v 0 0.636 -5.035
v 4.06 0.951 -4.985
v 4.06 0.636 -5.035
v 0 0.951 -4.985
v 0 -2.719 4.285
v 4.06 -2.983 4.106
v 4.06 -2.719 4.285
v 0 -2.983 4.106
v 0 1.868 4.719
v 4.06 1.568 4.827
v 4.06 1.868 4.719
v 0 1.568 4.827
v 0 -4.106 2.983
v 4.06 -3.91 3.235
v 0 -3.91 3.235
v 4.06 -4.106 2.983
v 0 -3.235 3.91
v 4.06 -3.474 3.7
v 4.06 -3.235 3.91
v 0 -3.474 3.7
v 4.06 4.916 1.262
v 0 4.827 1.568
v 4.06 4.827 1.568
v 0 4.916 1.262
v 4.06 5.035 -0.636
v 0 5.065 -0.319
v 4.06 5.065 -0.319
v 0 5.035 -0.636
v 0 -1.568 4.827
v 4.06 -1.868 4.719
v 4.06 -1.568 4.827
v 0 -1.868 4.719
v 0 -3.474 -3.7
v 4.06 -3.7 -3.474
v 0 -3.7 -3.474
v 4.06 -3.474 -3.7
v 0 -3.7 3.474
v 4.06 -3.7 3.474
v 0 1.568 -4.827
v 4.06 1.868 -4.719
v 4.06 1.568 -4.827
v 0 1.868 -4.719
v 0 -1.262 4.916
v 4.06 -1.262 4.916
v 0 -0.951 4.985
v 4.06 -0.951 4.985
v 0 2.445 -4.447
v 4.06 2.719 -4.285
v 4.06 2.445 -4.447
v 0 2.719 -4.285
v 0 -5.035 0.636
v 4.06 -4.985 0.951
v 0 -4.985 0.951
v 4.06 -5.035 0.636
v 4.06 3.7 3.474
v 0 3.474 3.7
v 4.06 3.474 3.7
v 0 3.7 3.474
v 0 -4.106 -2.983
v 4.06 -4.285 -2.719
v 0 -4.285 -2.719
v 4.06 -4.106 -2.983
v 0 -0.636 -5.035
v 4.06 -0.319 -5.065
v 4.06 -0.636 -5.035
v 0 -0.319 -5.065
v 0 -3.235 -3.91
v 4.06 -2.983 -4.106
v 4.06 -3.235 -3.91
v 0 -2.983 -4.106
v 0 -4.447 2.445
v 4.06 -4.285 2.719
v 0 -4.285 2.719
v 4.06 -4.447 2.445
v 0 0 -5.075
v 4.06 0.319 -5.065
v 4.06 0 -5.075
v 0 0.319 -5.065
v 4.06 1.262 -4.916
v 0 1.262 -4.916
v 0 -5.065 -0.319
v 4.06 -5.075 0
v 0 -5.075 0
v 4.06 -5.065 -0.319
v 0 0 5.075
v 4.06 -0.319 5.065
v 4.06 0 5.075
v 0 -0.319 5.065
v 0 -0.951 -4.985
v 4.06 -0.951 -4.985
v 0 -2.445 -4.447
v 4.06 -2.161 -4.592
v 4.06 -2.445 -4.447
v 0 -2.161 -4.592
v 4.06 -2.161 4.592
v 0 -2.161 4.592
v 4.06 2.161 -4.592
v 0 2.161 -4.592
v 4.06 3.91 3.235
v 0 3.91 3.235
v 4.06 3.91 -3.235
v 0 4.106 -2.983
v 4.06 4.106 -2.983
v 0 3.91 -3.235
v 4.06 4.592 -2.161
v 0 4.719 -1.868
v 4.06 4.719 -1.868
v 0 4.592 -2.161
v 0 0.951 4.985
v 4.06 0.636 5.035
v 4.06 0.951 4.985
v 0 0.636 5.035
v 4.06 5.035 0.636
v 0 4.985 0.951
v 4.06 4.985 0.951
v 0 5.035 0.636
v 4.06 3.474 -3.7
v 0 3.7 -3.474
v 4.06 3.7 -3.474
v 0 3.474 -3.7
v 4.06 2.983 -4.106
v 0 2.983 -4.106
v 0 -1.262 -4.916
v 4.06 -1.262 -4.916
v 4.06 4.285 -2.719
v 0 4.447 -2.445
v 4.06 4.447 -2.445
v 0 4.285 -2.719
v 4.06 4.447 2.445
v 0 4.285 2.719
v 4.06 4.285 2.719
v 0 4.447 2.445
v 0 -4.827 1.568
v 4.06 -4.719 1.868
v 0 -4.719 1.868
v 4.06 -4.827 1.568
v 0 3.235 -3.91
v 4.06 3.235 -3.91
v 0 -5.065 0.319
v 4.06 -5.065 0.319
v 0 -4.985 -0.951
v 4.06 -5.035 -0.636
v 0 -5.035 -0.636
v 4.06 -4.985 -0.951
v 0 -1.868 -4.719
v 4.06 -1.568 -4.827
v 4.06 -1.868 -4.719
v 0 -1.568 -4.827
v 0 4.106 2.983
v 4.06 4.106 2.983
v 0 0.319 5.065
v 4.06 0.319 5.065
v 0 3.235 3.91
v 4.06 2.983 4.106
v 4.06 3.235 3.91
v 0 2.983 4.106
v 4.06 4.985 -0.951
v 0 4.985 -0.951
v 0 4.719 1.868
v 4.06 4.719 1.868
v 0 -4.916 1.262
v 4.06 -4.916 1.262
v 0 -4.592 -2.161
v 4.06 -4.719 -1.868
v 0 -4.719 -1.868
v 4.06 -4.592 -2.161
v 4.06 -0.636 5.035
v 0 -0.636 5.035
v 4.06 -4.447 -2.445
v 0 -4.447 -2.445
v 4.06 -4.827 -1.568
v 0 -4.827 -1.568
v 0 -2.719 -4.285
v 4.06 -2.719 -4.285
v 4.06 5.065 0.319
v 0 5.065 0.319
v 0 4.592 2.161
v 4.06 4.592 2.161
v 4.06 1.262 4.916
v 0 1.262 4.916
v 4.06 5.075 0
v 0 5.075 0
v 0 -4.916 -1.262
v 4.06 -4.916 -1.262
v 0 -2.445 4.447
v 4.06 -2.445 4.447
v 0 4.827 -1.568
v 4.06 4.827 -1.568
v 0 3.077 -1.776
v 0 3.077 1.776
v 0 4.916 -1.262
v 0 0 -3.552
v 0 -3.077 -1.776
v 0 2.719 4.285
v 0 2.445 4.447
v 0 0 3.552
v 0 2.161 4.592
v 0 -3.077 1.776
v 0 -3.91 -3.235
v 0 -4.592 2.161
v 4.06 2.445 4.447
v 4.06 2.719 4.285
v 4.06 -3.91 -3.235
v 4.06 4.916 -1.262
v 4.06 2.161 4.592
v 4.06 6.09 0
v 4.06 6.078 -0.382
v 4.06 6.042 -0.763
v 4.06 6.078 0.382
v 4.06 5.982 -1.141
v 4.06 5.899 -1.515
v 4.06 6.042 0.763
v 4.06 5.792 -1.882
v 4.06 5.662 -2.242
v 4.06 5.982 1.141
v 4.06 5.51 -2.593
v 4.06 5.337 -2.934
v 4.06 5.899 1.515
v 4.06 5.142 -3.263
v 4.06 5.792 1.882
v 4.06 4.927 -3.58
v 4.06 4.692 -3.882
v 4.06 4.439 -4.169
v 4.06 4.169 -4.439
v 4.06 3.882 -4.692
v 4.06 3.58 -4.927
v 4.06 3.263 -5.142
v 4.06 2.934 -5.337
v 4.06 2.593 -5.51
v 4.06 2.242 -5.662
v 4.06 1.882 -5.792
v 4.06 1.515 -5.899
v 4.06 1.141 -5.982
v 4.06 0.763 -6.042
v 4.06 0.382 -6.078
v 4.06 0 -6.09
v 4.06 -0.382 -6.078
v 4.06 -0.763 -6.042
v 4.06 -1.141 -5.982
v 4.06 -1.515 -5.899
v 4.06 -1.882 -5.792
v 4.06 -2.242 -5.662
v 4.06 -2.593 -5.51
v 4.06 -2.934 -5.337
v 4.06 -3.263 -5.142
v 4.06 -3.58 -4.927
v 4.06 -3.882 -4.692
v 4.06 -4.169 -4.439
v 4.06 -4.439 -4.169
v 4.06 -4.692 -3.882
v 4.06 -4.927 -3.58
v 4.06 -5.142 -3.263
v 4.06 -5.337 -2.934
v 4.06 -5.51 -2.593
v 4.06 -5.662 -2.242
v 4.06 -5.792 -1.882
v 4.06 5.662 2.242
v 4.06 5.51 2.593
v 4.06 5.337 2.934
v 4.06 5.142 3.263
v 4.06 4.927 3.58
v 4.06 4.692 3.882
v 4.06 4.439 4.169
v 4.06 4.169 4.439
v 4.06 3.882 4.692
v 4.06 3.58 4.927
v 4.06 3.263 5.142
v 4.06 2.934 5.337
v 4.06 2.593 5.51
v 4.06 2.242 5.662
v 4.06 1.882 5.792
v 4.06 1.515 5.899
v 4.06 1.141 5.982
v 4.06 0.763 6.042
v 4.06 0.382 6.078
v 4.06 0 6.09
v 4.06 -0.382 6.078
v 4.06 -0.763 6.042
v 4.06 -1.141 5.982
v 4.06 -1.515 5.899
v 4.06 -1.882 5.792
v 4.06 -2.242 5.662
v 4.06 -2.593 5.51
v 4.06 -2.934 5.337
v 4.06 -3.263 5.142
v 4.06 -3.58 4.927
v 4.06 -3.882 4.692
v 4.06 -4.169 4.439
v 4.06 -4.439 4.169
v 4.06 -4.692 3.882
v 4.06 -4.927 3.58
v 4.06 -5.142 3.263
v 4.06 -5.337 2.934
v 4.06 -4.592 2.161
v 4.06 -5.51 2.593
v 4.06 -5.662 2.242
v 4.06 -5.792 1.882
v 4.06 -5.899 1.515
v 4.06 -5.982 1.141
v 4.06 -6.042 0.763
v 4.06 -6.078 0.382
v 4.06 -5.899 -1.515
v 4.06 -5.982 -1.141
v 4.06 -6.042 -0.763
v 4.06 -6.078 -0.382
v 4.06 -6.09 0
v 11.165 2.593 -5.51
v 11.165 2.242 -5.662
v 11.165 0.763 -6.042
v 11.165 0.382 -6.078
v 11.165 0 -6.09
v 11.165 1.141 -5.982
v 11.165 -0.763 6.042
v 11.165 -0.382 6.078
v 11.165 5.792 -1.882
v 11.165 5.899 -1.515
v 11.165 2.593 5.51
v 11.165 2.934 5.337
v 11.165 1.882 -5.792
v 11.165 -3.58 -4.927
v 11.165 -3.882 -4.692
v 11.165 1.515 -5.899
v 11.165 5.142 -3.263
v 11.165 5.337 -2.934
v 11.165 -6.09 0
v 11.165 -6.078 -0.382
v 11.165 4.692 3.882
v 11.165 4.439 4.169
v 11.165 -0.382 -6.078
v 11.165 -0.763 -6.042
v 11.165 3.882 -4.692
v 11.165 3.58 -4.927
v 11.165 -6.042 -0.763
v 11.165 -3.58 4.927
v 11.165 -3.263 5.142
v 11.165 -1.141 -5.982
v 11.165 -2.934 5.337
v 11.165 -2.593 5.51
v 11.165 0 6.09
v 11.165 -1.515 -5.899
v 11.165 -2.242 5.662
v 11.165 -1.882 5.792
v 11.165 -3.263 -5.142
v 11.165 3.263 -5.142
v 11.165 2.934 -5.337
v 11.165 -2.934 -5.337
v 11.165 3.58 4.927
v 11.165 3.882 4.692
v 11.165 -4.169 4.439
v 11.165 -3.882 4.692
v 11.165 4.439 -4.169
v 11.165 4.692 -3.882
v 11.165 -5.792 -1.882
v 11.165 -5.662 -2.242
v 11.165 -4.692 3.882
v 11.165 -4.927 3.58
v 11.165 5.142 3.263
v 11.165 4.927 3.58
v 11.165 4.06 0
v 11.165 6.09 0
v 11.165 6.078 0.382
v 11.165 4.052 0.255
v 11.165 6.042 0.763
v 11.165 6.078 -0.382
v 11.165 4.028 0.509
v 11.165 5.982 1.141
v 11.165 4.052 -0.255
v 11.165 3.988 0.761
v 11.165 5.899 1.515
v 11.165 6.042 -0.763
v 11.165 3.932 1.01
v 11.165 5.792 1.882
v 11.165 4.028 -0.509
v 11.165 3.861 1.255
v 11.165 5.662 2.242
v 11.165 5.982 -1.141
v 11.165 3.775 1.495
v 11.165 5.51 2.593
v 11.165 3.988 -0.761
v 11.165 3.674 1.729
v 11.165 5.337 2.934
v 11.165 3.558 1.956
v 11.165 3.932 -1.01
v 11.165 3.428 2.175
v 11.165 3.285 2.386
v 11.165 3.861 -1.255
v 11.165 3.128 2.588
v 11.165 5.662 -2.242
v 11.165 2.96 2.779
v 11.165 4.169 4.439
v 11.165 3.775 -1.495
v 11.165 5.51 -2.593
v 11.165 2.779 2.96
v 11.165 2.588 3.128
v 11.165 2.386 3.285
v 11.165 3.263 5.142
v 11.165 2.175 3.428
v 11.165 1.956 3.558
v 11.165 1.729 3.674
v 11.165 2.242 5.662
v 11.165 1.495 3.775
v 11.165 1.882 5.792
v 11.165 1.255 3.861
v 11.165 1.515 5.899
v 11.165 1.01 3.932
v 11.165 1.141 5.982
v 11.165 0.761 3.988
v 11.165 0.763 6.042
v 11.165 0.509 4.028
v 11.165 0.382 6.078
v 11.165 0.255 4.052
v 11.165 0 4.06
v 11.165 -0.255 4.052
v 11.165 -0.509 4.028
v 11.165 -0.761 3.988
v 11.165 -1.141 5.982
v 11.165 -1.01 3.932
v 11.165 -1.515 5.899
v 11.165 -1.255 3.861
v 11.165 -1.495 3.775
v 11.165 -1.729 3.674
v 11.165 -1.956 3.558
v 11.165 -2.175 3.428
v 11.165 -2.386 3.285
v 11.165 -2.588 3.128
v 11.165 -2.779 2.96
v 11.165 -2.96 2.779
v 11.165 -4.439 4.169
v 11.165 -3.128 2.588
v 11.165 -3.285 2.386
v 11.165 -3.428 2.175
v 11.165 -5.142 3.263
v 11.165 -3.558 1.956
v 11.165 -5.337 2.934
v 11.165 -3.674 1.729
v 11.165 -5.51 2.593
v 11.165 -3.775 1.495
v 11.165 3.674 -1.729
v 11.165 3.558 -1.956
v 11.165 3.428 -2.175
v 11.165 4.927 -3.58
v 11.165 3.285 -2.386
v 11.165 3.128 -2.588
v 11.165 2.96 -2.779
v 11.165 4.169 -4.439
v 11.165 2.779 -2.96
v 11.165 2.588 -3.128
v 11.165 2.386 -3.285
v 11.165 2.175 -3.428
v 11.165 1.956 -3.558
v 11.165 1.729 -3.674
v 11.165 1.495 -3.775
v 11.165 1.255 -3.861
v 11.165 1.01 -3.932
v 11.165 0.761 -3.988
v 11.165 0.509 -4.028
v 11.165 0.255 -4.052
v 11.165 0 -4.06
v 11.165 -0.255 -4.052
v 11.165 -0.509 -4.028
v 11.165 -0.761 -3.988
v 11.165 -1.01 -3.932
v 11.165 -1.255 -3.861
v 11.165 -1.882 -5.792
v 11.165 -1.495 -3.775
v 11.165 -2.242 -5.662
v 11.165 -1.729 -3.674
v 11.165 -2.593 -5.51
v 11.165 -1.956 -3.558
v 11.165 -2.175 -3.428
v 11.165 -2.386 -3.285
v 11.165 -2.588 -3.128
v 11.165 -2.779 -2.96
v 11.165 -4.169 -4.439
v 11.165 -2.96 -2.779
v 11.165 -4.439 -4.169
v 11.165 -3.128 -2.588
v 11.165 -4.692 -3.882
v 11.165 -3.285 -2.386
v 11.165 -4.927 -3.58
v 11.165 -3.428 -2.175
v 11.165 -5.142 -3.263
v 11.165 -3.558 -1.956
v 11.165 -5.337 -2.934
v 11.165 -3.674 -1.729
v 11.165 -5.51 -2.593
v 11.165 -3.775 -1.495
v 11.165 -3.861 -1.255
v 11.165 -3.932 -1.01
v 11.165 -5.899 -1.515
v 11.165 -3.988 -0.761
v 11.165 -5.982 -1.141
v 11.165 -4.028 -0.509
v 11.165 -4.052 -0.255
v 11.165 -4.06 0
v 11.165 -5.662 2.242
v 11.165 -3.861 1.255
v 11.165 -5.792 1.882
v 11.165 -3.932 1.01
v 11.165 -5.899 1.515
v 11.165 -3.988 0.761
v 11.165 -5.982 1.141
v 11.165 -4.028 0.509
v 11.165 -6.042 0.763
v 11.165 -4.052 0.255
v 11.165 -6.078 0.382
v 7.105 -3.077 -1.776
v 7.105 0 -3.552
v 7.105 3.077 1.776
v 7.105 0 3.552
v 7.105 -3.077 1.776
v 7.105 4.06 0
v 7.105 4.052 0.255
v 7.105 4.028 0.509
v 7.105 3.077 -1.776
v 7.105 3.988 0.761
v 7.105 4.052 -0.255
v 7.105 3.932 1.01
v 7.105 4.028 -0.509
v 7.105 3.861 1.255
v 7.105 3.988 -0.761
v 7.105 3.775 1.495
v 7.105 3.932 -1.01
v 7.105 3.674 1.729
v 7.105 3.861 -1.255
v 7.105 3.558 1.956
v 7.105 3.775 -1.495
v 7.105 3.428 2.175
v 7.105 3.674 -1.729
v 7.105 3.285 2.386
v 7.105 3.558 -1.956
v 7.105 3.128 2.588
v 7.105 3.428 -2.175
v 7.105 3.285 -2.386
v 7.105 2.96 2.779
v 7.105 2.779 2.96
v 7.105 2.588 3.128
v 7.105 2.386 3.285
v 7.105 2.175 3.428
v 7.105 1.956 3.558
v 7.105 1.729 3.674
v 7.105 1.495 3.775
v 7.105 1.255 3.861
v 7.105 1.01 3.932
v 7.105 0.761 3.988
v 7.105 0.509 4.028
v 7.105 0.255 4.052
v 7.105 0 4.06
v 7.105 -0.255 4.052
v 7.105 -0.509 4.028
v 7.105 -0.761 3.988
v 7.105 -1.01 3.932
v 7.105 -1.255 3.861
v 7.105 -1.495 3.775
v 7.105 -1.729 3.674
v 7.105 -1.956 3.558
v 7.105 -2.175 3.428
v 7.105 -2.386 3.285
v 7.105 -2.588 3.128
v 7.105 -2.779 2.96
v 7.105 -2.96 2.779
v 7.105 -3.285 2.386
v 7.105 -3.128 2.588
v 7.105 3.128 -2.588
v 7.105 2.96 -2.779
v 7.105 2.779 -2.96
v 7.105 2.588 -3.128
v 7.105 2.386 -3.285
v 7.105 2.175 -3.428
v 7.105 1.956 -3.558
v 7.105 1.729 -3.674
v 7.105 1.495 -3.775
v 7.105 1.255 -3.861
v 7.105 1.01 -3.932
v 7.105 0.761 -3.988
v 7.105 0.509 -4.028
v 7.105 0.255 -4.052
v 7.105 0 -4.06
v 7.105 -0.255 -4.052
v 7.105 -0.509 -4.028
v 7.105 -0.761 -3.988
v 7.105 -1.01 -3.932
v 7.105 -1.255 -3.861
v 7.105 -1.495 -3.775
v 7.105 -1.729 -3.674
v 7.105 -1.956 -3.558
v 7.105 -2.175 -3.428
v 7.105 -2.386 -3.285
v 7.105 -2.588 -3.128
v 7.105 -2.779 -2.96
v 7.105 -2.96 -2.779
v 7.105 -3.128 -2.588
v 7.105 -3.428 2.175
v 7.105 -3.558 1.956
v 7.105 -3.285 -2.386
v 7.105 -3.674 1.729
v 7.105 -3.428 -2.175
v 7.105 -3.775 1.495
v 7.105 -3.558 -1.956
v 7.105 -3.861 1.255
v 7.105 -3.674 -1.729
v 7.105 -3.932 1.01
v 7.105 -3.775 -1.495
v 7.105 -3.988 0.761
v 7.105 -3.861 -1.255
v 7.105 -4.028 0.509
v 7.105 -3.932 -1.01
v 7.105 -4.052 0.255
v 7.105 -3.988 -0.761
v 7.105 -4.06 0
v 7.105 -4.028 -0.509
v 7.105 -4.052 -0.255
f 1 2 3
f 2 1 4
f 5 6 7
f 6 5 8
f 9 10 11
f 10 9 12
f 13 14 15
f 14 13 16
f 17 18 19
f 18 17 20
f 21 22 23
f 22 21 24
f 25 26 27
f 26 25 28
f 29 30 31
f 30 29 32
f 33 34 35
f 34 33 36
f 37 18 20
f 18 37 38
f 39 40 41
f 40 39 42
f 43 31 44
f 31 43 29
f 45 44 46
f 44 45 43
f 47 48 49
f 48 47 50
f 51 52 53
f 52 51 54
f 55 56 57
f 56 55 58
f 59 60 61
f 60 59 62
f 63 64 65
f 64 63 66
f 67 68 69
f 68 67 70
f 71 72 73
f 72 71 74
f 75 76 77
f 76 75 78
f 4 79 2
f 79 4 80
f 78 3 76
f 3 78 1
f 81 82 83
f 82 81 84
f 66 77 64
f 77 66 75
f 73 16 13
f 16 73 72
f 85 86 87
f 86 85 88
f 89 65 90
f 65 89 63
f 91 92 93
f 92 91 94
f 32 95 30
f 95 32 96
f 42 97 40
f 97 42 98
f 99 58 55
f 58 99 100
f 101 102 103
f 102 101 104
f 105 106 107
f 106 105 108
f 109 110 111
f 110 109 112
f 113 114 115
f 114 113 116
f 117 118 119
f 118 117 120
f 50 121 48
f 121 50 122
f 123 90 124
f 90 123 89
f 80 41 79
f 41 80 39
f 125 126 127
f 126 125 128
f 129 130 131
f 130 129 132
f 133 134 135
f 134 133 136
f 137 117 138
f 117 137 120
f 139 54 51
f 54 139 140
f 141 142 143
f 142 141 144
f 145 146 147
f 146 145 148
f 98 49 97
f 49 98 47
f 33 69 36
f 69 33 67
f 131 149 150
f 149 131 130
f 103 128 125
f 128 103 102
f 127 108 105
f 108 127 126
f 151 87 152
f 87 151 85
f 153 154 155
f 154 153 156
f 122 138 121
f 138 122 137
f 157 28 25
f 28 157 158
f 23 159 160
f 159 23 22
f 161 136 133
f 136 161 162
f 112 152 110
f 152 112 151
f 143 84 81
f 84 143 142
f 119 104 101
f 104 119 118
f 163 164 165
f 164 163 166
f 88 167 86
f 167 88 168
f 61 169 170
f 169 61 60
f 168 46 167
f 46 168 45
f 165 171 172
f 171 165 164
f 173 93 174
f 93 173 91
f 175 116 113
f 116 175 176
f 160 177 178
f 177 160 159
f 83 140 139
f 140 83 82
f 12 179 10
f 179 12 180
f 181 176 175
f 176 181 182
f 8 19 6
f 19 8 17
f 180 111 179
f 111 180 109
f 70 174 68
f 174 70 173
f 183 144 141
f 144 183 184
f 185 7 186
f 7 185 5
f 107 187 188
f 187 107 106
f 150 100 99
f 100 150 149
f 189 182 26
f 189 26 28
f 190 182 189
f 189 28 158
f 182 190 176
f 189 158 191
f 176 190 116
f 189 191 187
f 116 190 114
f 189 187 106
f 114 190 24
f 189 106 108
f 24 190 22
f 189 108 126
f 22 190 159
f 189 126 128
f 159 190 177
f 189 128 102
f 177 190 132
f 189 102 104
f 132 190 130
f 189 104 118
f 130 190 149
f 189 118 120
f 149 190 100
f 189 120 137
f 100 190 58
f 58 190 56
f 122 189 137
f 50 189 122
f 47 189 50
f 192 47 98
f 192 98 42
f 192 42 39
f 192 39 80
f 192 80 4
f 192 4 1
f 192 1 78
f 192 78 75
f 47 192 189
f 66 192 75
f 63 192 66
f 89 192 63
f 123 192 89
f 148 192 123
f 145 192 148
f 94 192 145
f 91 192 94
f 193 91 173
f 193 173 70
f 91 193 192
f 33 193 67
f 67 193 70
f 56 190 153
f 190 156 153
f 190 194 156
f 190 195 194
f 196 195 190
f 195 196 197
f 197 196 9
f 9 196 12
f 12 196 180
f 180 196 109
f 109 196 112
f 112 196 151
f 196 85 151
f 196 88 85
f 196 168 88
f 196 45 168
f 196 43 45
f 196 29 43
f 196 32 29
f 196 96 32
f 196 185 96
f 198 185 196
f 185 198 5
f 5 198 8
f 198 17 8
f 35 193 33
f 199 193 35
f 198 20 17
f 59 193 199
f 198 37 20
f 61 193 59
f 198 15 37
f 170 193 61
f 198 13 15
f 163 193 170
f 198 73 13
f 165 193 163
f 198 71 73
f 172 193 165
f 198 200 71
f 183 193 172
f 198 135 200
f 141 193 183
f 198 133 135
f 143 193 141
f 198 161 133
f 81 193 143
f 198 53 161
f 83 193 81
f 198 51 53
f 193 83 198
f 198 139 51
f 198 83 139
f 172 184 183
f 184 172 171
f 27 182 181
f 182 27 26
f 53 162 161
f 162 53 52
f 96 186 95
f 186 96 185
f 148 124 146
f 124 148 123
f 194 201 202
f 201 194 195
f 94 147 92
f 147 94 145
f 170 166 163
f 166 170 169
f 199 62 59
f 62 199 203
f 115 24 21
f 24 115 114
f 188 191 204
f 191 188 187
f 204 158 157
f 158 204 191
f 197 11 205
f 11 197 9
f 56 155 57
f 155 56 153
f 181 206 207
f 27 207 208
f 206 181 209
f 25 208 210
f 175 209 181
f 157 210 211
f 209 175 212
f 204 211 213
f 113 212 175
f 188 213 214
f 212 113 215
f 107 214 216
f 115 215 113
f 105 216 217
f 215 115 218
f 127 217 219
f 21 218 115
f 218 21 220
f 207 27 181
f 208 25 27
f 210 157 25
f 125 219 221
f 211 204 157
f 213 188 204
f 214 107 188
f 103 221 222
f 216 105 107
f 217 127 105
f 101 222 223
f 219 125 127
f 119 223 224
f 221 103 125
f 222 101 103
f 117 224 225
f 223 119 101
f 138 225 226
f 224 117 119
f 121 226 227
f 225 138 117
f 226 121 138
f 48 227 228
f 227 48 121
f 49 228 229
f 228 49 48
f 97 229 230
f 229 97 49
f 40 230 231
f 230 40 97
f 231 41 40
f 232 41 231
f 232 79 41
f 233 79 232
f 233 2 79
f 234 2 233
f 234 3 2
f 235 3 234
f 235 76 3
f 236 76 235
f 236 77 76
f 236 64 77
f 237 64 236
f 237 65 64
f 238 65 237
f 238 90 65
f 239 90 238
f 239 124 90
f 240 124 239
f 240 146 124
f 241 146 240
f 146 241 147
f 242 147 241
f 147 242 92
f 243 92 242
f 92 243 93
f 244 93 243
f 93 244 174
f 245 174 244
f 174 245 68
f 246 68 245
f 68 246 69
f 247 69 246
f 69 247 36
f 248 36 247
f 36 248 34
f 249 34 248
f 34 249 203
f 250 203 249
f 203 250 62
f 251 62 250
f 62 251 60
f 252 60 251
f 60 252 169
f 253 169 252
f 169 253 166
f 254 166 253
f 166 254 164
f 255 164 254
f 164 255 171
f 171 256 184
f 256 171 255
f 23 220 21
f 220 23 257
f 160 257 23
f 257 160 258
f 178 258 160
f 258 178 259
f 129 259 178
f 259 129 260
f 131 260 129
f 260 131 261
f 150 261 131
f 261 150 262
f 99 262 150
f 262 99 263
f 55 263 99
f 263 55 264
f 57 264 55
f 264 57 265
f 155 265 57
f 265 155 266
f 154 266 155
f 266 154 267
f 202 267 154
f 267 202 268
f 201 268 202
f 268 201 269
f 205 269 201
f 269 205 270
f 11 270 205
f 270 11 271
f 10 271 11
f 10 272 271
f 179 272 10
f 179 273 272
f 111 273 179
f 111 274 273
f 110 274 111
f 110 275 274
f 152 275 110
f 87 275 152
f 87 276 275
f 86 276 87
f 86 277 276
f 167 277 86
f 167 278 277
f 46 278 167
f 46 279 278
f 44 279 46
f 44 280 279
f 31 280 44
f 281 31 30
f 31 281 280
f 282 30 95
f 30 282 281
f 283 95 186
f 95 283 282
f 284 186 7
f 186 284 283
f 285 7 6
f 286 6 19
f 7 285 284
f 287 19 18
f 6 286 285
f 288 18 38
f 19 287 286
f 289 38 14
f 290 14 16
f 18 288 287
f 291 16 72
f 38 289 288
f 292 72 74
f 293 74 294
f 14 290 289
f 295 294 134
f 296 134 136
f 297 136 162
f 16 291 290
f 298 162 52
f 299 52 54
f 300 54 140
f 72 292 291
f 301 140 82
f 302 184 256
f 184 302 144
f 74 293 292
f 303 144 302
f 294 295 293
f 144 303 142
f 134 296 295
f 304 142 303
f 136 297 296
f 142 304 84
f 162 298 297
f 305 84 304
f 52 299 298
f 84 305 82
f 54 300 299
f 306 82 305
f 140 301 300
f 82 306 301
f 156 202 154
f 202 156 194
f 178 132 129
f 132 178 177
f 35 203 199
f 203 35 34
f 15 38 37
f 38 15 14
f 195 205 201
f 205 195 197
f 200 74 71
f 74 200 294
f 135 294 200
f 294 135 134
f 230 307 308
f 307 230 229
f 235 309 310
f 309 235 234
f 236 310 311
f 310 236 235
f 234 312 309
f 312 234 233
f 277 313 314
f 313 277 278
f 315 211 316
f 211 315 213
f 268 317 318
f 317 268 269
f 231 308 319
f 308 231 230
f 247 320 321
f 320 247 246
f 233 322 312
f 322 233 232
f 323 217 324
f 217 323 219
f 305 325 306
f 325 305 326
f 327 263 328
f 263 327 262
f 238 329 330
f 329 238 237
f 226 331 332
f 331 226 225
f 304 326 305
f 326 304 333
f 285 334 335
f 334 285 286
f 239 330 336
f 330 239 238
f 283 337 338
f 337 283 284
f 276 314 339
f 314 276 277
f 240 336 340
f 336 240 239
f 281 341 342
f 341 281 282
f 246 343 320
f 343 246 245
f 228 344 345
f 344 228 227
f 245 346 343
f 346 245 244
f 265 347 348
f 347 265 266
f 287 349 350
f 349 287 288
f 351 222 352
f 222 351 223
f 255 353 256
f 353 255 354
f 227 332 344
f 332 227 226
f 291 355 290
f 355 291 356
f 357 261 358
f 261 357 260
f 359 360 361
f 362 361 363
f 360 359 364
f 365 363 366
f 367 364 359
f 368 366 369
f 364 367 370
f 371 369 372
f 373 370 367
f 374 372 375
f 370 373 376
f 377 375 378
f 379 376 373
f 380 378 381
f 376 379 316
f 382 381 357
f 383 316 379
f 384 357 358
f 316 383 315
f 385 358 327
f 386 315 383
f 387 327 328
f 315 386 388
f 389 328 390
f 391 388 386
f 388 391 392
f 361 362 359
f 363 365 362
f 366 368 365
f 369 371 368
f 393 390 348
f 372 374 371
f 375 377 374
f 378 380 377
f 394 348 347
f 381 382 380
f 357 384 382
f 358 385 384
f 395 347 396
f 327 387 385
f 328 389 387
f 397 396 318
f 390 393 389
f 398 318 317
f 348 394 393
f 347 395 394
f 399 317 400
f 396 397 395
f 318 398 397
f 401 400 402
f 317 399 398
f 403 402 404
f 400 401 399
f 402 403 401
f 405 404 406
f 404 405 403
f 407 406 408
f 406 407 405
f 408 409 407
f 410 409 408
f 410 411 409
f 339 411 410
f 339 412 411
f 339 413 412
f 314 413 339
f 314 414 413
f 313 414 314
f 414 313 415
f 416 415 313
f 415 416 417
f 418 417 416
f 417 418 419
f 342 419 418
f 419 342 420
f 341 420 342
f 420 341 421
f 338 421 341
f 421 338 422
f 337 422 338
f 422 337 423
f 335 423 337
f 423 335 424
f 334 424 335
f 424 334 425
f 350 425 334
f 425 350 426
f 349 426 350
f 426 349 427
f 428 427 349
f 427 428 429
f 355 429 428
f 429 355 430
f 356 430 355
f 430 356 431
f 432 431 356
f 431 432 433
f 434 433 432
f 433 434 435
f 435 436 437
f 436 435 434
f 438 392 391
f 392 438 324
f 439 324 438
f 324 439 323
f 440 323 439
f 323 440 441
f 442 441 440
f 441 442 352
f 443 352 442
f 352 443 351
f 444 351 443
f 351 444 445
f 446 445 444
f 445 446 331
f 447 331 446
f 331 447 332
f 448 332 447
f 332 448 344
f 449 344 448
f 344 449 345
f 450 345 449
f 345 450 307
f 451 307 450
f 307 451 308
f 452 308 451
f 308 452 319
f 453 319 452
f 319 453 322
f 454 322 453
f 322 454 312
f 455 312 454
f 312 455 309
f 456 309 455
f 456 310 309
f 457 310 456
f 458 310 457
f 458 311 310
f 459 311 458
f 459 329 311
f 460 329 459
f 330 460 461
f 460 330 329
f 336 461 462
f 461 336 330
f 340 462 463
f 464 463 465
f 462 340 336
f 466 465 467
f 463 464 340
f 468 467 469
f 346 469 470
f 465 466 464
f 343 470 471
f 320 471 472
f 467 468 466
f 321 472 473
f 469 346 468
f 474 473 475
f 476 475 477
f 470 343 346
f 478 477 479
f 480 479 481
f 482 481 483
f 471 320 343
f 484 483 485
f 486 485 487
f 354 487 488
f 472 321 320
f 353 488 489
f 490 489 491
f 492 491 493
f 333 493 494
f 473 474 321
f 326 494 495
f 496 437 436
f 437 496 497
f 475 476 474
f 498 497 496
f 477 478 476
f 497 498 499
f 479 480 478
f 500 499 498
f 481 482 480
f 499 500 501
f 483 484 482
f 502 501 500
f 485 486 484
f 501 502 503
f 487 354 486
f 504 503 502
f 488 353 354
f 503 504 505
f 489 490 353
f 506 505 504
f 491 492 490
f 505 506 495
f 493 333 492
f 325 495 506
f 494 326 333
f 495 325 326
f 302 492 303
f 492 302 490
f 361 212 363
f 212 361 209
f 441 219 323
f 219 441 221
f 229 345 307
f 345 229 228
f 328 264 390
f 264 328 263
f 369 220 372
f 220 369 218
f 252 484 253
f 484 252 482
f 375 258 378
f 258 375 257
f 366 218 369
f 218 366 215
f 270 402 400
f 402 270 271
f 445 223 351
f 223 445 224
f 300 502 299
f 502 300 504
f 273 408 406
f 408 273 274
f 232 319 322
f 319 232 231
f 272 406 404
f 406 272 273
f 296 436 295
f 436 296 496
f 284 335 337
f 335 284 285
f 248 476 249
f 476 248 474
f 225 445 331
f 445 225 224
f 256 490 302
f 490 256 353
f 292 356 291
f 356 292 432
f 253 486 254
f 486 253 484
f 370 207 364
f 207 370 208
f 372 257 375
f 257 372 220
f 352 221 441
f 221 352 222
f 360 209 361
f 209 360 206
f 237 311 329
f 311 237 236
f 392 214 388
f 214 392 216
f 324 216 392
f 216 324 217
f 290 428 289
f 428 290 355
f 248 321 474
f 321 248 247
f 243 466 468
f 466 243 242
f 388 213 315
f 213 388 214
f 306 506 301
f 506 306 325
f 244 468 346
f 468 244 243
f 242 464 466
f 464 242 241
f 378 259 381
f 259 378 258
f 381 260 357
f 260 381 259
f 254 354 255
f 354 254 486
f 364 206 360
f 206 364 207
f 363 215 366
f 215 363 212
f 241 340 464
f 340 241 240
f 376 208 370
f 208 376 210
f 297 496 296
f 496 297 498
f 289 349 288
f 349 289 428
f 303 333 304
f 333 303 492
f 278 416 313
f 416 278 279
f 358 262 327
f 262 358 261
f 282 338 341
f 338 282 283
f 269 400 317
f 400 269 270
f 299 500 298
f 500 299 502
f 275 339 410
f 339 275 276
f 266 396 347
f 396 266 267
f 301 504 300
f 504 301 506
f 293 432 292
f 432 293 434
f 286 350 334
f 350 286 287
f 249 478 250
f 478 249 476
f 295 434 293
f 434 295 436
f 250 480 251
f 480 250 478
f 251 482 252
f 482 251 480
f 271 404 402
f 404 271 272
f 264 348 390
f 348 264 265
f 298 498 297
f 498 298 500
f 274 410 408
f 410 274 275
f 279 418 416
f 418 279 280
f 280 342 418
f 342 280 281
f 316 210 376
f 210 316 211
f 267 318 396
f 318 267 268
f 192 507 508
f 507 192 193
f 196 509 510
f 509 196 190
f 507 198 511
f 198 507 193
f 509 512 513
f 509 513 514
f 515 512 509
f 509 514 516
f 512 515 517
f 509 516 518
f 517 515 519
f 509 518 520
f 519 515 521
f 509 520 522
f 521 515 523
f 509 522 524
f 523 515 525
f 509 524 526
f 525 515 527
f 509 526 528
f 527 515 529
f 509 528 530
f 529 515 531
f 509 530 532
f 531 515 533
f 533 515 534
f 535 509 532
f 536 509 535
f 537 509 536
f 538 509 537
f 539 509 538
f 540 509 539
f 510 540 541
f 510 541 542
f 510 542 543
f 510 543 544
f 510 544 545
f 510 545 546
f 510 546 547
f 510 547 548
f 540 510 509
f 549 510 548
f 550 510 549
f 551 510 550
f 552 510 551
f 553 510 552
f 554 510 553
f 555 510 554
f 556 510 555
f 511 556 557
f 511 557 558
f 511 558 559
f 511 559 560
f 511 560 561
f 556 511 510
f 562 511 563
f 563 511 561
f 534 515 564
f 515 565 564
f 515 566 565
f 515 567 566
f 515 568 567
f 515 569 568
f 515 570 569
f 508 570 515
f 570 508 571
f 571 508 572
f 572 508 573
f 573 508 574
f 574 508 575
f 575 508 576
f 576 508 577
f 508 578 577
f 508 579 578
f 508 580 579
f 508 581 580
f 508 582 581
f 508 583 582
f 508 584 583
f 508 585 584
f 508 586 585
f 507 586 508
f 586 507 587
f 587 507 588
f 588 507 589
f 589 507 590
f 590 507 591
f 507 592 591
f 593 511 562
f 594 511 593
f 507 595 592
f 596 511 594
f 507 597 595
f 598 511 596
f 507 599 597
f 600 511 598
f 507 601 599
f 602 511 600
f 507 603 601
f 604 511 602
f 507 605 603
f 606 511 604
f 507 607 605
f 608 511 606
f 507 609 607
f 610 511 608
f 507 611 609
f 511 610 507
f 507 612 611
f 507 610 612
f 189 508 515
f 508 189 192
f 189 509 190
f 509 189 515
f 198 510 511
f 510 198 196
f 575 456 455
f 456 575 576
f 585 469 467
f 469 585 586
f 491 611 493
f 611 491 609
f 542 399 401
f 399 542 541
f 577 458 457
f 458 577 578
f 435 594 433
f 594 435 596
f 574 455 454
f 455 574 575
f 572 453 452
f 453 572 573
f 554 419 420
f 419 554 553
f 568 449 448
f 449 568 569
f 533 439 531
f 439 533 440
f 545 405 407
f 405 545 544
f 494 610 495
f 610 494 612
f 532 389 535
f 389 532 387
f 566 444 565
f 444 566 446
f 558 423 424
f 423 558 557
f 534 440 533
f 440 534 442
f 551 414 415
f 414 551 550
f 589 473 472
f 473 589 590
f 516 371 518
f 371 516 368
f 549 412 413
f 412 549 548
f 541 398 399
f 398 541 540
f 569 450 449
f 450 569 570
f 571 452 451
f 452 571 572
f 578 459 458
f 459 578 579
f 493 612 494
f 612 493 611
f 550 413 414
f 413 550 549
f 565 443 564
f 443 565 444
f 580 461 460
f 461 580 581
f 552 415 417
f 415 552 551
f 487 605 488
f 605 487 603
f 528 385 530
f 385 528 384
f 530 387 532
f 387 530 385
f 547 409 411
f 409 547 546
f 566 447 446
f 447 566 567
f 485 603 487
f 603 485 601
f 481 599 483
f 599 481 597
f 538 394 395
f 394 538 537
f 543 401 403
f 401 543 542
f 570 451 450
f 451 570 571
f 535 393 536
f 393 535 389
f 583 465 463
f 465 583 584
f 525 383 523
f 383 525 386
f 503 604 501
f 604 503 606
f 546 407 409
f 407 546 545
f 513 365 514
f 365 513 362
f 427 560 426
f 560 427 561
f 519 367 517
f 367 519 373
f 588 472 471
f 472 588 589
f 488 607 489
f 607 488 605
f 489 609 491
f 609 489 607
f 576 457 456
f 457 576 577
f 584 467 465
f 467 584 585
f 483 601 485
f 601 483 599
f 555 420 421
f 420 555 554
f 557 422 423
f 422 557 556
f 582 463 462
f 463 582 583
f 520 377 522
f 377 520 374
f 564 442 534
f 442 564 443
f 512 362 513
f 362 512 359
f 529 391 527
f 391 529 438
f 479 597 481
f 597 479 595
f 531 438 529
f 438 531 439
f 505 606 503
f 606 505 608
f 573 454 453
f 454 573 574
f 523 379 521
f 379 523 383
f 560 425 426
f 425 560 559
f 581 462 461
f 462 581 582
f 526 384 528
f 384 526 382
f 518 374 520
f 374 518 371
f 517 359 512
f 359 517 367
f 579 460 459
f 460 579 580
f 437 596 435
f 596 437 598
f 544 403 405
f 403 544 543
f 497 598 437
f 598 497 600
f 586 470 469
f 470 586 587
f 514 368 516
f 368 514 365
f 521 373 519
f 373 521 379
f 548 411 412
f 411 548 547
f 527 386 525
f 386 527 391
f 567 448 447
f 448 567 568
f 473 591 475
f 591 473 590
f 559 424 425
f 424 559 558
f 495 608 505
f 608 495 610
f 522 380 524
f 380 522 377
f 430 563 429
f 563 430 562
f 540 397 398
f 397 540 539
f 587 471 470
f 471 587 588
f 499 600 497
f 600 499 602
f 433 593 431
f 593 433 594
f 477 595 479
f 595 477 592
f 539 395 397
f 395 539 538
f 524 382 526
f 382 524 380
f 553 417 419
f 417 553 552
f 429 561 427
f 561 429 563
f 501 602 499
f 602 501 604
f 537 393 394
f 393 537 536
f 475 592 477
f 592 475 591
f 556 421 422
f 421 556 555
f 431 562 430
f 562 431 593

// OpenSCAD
$fn=100;
// printing factor for shrinkage
f = 1.015;


 
scale([f,f,f]) {
   difference() {   
   rotate([0,90,0]) union() {
        cylinder(h=4, d=10);
        translate([0,0,4]) cylinder(h=3+4, d=12);
   }
   translate([-1,0,0]) rotate([0,90,0]) cylinder(d=7,h=8,$fn=6);
   translate([7,0,0]) rotate([0,90,0]) cylinder(d=8,h=4);
}
}
